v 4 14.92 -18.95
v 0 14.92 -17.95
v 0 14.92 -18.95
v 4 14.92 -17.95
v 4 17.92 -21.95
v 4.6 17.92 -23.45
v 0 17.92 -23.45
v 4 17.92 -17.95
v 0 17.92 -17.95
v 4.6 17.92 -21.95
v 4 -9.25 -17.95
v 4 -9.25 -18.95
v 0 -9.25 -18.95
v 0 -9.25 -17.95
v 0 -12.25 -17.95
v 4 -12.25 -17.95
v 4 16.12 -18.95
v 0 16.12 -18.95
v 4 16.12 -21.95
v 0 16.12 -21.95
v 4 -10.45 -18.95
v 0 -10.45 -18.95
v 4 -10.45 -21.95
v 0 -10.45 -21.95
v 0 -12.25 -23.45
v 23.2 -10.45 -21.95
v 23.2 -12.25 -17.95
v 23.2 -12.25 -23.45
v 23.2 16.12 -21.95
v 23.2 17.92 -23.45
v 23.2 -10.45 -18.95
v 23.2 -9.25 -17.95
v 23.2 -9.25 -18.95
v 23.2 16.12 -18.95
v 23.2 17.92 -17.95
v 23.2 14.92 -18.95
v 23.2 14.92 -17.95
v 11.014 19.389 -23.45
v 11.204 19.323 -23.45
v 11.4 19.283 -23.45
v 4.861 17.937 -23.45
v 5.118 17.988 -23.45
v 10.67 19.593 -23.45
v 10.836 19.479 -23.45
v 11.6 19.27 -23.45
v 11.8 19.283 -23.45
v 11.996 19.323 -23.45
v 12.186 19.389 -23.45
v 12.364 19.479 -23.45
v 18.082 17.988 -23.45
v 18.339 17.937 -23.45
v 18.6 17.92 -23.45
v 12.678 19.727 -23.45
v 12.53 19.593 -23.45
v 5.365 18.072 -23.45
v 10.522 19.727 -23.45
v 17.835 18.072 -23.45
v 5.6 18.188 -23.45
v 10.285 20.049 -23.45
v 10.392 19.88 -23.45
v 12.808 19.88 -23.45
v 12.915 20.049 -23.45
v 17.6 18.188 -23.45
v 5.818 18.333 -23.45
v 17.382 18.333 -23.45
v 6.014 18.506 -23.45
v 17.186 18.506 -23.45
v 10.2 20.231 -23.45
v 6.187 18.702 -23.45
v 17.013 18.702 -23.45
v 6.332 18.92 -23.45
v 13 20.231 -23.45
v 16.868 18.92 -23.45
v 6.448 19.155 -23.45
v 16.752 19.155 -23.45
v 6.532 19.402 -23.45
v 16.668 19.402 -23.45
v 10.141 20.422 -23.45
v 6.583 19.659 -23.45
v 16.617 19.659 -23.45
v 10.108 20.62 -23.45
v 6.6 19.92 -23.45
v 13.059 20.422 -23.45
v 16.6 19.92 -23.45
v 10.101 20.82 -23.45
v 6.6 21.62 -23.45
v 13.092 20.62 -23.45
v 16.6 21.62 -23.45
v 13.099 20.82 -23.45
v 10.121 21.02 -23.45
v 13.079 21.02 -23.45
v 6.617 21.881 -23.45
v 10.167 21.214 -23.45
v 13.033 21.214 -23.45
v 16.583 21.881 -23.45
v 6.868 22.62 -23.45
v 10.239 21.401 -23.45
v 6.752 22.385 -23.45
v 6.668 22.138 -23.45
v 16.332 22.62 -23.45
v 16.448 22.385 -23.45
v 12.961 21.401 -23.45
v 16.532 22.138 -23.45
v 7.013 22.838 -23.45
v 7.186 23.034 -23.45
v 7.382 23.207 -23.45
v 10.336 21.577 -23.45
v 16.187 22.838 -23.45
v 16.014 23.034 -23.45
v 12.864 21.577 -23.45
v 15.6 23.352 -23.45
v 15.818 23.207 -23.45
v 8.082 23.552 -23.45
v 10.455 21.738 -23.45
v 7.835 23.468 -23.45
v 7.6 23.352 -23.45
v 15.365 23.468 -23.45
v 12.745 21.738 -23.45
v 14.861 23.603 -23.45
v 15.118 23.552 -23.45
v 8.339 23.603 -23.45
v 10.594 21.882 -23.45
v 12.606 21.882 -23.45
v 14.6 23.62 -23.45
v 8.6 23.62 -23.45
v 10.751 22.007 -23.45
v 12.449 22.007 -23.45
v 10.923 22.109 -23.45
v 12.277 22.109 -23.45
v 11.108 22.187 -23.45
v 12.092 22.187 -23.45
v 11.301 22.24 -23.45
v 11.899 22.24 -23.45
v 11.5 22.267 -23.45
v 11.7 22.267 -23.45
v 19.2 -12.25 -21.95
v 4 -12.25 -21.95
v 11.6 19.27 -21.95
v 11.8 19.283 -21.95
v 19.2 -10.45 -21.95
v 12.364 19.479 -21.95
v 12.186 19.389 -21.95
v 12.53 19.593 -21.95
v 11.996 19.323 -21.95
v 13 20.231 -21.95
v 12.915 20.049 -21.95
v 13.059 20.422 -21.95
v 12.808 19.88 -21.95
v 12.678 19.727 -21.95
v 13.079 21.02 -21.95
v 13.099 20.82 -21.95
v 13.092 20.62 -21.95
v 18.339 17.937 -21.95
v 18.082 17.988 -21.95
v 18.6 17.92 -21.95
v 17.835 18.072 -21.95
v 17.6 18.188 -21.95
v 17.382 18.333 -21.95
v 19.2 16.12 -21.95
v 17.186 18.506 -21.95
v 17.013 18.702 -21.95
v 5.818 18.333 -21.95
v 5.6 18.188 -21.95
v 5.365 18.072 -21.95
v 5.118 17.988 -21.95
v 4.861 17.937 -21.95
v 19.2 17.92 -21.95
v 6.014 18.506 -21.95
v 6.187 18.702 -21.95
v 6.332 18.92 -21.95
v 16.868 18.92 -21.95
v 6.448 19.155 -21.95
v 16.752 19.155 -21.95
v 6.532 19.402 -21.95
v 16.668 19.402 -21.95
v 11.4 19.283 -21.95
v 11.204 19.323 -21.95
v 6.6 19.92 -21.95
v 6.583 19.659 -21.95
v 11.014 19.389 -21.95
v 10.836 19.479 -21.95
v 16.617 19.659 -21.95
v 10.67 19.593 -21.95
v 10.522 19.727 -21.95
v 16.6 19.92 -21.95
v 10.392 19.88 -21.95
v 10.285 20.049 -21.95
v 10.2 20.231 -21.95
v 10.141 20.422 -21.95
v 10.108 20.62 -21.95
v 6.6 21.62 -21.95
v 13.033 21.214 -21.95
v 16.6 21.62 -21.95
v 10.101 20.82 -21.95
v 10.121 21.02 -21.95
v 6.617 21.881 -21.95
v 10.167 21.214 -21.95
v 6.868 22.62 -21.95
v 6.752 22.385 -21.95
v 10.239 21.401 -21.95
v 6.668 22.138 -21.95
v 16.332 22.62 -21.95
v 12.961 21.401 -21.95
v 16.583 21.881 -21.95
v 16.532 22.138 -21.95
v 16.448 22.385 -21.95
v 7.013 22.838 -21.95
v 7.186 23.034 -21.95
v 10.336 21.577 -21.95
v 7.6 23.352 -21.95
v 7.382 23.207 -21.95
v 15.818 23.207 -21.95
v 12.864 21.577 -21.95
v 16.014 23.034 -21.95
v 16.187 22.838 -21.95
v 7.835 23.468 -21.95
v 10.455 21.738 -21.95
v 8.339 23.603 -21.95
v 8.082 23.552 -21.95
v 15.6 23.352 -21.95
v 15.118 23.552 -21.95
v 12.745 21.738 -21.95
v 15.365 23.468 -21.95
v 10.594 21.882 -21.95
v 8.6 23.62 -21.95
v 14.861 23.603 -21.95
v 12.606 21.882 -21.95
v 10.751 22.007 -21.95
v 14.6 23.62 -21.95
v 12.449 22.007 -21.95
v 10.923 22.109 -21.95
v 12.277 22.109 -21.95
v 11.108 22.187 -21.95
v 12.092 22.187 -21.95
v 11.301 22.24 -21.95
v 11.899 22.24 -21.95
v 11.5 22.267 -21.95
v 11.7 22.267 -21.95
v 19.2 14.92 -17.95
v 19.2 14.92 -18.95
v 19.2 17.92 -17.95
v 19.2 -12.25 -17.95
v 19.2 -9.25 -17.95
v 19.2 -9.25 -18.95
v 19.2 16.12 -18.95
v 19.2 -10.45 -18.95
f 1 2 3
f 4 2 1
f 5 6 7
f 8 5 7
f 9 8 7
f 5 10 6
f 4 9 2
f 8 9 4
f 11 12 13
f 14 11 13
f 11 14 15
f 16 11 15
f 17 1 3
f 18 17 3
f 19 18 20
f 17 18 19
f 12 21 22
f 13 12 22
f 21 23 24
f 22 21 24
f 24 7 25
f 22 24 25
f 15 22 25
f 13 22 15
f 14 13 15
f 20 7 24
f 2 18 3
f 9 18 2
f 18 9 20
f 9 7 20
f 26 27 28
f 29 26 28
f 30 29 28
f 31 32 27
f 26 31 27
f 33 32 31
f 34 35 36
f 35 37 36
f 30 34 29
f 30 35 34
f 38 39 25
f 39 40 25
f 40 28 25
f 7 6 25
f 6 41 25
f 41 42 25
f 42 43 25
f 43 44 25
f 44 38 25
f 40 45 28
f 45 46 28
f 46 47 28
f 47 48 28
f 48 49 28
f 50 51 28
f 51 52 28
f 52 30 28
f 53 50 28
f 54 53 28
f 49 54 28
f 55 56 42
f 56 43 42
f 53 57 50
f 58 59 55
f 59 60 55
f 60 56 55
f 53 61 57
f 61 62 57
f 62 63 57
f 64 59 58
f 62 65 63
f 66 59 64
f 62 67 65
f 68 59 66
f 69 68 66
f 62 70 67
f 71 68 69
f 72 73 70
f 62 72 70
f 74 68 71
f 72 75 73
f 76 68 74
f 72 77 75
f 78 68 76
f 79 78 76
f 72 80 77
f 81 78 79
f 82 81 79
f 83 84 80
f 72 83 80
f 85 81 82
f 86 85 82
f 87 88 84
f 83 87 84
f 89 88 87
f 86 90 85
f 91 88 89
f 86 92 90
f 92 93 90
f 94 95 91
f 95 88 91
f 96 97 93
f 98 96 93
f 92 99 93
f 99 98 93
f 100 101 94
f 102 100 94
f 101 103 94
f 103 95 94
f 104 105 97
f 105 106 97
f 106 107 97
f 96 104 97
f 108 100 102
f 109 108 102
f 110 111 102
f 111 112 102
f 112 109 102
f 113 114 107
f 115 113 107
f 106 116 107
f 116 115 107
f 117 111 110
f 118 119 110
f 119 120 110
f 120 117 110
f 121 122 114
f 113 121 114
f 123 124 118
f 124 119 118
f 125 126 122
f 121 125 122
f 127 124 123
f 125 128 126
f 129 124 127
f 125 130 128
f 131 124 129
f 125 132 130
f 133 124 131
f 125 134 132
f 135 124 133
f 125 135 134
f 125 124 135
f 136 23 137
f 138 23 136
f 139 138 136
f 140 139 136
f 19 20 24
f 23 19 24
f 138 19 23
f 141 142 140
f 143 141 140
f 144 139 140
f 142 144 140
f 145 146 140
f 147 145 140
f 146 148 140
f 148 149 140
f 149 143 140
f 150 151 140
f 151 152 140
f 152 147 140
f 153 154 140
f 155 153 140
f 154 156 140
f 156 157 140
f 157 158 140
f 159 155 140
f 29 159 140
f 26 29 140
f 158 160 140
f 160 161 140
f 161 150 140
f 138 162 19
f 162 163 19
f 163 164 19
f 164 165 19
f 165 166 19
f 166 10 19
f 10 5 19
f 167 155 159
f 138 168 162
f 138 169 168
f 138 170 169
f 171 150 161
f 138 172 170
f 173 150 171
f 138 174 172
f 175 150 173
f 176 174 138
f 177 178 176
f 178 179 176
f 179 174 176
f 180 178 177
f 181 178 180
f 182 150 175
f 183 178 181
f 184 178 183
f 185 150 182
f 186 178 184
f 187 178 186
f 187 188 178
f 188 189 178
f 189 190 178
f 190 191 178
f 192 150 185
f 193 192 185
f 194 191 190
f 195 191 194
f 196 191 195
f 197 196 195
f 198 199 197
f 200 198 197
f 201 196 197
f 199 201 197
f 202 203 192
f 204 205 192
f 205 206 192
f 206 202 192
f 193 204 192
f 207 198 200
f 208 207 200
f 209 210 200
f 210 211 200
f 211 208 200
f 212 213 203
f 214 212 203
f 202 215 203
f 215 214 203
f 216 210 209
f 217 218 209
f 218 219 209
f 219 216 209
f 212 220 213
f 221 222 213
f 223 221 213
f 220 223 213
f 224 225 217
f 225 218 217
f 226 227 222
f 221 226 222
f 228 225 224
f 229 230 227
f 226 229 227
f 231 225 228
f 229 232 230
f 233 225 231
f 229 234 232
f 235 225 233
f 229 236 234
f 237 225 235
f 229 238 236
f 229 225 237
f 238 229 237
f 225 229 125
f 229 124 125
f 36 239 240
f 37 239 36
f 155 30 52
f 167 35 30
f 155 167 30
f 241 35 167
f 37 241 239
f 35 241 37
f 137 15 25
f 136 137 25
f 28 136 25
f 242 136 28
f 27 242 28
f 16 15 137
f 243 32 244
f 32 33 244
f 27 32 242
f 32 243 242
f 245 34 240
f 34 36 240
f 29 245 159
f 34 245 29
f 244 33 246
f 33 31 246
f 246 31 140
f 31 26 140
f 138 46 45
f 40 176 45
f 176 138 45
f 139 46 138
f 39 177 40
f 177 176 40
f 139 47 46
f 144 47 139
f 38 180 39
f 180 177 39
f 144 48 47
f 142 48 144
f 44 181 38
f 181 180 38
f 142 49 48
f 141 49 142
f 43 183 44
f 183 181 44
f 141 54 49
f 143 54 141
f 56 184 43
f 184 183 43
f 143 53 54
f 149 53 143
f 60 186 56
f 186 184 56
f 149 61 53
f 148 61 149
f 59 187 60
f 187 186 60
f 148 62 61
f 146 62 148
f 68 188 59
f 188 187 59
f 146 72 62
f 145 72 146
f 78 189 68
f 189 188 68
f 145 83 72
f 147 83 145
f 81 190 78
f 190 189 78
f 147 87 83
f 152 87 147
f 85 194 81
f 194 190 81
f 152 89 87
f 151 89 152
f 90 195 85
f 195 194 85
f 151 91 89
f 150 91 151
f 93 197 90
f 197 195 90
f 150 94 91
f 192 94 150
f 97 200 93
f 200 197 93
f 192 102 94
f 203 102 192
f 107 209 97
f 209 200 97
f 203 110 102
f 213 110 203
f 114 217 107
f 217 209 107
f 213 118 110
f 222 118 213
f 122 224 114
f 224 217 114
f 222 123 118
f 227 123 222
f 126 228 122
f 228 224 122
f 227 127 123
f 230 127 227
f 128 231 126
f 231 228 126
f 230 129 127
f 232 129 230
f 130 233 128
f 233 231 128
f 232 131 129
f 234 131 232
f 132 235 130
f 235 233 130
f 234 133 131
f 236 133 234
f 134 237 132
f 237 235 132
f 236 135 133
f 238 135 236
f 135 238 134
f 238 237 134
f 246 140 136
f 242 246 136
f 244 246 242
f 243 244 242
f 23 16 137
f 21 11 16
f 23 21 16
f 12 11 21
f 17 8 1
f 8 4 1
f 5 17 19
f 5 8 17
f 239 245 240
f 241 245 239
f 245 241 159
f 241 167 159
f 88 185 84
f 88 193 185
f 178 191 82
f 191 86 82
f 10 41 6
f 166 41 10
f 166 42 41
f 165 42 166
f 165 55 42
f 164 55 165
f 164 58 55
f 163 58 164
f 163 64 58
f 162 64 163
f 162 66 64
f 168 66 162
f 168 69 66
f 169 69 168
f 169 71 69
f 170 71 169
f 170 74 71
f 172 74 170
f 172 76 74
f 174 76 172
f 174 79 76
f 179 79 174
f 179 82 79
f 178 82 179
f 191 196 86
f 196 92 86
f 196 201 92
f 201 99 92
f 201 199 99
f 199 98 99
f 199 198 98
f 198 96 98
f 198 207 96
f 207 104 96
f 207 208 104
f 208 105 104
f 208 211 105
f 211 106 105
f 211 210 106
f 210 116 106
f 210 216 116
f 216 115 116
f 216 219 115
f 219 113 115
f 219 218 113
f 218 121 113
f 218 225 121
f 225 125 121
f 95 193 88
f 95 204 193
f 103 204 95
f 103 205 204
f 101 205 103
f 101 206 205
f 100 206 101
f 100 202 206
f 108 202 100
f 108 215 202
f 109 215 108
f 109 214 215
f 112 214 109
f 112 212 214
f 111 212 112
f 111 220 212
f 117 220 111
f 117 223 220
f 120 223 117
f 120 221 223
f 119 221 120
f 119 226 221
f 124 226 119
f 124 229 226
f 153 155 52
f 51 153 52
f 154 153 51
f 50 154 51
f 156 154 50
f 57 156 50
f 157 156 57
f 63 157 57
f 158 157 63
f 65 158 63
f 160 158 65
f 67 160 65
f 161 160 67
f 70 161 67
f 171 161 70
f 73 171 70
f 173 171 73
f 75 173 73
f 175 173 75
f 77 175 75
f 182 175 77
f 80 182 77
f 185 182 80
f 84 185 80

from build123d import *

# Parameters (mm, degrees)
SKETCH1_W             = 23.2
SKETCH1_H             = 41.57
BOSS_EXTRUDE1_DEPTH   = 1.5
SKETCH2_W             = 23.2
SKETCH2_H             = 3
BOSS_EXTRUDE2_DEPTH   = 4
SKETCH3_W             = 23.2
SKETCH3_H             = 3
CUT_EXTRUDE1_DEPTH    = 1.2
SKETCH4_W             = 23.2
SKETCH4_H             = 3
CUT_EXTRUDE2_DEPTH    = 1.2
SKETCH5_R             = 1.5
CUT_EXTRUDE3_DEPTH    = 48.773474858
SKETCH7_W             = 23.2
SKETCH7_H             = 5.7
CUT_EXTRUDE4_DEPTH    = 48.922384123
SKETCH8_W             = 15.2
SKETCH8_H             = 4
CUT_EXTRUDE5_DEPTH    = 44.071416276
SKETCH9_W             = 6.6
SKETCH9_H             = 5.7
CUT_EXTRUDE6_DEPTH    = 48.773474858
FILLET1_R             = 2
BODY_MOVE_COPY1_ANGLE = 90


with BuildPart() as part:
    # Sketch1 → Boss-Extrude1 (new body)
    with BuildSketch(Plane(origin=(0, 0, 0), x_dir=(1, 0, 0), z_dir=(0, 1, 0))):
        with Locations((11.6, 20.785)):
            Rectangle(SKETCH1_W, SKETCH1_H)
    extrude(amount=BOSS_EXTRUDE1_DEPTH)

    # Sketch2 → Boss-Extrude2 (add)
    with BuildSketch(Plane(origin=(0, 1.5, 0), x_dir=(1, 0, 0), z_dir=(0, 1, 0))):
        with Locations((11.6, 34.37)):
            Rectangle(SKETCH2_W, SKETCH2_H)
        with Locations((11.6, 7.2)):
            Rectangle(SKETCH2_W, SKETCH2_H)
    extrude(amount=BOSS_EXTRUDE2_DEPTH)

    # Sketch3 → Cut-Extrude1 (cut)
    with BuildSketch(Plane.XY.offset(-32.87)):
        with Locations((11.6, 3)):
            Rectangle(SKETCH3_W, SKETCH3_H)
    extrude(amount=-CUT_EXTRUDE1_DEPTH, mode=Mode.SUBTRACT)

    # Sketch4 → Cut-Extrude2 (cut)
    with BuildSketch(Plane(origin=(0, 0, -8.7), x_dir=(-1, 0, 0), z_dir=(0, 0, -1))):
        with Locations((-11.6, 3)):
            Rectangle(SKETCH4_W, SKETCH4_H)
    extrude(amount=-CUT_EXTRUDE2_DEPTH, mode=Mode.SUBTRACT)

    # Sketch5 → Cut-Extrude3 (cut, through all)
    with BuildSketch(Plane(origin=(0, 1.5, 0), x_dir=(1, 0, 0), z_dir=(0, 1, 0))):
        with Locations(Location((11.6, 38.72, 0), (0, 0, 270))):
            Circle(SKETCH5_R)
        with Locations(Location((11.6, 2.85, 0), (0, 0, 270))):
            Circle(SKETCH5_R)
    extrude(amount=-CUT_EXTRUDE3_DEPTH, mode=Mode.SUBTRACT)

    # Sketch7 → Cut-Extrude4 (cut, through all)
    with BuildSketch(Plane(origin=(0, 0, 0), x_dir=(1, 0, 0), z_dir=(0, 1, 0))):
        with Locations((11.6, 2.85)):
            Rectangle(SKETCH7_W, SKETCH7_H)
    extrude(amount=CUT_EXTRUDE4_DEPTH, mode=Mode.SUBTRACT)

    # Sketch8 → Cut-Extrude5 (cut, through all)
    with BuildSketch(Plane.XY.offset(-5.7)):
        with Locations((11.6, 3.5)):
            Rectangle(SKETCH8_W, SKETCH8_H)
    extrude(amount=-CUT_EXTRUDE5_DEPTH, mode=Mode.SUBTRACT)

    # Sketch9 → Cut-Extrude6 (cut, through all)
    with BuildSketch(Plane(origin=(0, 1.5, 0), x_dir=(1, 0, 0), z_dir=(0, 1, 0))):
        with Locations((3.3, 38.72)):
            Rectangle(SKETCH9_W, SKETCH9_H)
        with Locations((19.9, 38.72)):
            Rectangle(SKETCH9_W, SKETCH9_H)
    extrude(amount=-CUT_EXTRUDE6_DEPTH, mode=Mode.SUBTRACT)

    # Fillet1
    fillet1_edges = [part.edges().sort_by_distance(p)[0] for p in [
        (6.6, 0.75, -41.57),
        (6.6, 0.75, -35.87),
        (16.6, 0.75, -41.57),
        (16.6, 0.75, -35.87),
    ]]
    fillet(fillet1_edges, radius=FILLET1_R)


with BuildPart() as part_1:
    # Body-Move/Copy1: moved
    add(part.part.rotate(Axis((0, 2.75, -20.7), (1, 0, 0)), BODY_MOVE_COPY1_ANGLE))


solid = part_1.part
